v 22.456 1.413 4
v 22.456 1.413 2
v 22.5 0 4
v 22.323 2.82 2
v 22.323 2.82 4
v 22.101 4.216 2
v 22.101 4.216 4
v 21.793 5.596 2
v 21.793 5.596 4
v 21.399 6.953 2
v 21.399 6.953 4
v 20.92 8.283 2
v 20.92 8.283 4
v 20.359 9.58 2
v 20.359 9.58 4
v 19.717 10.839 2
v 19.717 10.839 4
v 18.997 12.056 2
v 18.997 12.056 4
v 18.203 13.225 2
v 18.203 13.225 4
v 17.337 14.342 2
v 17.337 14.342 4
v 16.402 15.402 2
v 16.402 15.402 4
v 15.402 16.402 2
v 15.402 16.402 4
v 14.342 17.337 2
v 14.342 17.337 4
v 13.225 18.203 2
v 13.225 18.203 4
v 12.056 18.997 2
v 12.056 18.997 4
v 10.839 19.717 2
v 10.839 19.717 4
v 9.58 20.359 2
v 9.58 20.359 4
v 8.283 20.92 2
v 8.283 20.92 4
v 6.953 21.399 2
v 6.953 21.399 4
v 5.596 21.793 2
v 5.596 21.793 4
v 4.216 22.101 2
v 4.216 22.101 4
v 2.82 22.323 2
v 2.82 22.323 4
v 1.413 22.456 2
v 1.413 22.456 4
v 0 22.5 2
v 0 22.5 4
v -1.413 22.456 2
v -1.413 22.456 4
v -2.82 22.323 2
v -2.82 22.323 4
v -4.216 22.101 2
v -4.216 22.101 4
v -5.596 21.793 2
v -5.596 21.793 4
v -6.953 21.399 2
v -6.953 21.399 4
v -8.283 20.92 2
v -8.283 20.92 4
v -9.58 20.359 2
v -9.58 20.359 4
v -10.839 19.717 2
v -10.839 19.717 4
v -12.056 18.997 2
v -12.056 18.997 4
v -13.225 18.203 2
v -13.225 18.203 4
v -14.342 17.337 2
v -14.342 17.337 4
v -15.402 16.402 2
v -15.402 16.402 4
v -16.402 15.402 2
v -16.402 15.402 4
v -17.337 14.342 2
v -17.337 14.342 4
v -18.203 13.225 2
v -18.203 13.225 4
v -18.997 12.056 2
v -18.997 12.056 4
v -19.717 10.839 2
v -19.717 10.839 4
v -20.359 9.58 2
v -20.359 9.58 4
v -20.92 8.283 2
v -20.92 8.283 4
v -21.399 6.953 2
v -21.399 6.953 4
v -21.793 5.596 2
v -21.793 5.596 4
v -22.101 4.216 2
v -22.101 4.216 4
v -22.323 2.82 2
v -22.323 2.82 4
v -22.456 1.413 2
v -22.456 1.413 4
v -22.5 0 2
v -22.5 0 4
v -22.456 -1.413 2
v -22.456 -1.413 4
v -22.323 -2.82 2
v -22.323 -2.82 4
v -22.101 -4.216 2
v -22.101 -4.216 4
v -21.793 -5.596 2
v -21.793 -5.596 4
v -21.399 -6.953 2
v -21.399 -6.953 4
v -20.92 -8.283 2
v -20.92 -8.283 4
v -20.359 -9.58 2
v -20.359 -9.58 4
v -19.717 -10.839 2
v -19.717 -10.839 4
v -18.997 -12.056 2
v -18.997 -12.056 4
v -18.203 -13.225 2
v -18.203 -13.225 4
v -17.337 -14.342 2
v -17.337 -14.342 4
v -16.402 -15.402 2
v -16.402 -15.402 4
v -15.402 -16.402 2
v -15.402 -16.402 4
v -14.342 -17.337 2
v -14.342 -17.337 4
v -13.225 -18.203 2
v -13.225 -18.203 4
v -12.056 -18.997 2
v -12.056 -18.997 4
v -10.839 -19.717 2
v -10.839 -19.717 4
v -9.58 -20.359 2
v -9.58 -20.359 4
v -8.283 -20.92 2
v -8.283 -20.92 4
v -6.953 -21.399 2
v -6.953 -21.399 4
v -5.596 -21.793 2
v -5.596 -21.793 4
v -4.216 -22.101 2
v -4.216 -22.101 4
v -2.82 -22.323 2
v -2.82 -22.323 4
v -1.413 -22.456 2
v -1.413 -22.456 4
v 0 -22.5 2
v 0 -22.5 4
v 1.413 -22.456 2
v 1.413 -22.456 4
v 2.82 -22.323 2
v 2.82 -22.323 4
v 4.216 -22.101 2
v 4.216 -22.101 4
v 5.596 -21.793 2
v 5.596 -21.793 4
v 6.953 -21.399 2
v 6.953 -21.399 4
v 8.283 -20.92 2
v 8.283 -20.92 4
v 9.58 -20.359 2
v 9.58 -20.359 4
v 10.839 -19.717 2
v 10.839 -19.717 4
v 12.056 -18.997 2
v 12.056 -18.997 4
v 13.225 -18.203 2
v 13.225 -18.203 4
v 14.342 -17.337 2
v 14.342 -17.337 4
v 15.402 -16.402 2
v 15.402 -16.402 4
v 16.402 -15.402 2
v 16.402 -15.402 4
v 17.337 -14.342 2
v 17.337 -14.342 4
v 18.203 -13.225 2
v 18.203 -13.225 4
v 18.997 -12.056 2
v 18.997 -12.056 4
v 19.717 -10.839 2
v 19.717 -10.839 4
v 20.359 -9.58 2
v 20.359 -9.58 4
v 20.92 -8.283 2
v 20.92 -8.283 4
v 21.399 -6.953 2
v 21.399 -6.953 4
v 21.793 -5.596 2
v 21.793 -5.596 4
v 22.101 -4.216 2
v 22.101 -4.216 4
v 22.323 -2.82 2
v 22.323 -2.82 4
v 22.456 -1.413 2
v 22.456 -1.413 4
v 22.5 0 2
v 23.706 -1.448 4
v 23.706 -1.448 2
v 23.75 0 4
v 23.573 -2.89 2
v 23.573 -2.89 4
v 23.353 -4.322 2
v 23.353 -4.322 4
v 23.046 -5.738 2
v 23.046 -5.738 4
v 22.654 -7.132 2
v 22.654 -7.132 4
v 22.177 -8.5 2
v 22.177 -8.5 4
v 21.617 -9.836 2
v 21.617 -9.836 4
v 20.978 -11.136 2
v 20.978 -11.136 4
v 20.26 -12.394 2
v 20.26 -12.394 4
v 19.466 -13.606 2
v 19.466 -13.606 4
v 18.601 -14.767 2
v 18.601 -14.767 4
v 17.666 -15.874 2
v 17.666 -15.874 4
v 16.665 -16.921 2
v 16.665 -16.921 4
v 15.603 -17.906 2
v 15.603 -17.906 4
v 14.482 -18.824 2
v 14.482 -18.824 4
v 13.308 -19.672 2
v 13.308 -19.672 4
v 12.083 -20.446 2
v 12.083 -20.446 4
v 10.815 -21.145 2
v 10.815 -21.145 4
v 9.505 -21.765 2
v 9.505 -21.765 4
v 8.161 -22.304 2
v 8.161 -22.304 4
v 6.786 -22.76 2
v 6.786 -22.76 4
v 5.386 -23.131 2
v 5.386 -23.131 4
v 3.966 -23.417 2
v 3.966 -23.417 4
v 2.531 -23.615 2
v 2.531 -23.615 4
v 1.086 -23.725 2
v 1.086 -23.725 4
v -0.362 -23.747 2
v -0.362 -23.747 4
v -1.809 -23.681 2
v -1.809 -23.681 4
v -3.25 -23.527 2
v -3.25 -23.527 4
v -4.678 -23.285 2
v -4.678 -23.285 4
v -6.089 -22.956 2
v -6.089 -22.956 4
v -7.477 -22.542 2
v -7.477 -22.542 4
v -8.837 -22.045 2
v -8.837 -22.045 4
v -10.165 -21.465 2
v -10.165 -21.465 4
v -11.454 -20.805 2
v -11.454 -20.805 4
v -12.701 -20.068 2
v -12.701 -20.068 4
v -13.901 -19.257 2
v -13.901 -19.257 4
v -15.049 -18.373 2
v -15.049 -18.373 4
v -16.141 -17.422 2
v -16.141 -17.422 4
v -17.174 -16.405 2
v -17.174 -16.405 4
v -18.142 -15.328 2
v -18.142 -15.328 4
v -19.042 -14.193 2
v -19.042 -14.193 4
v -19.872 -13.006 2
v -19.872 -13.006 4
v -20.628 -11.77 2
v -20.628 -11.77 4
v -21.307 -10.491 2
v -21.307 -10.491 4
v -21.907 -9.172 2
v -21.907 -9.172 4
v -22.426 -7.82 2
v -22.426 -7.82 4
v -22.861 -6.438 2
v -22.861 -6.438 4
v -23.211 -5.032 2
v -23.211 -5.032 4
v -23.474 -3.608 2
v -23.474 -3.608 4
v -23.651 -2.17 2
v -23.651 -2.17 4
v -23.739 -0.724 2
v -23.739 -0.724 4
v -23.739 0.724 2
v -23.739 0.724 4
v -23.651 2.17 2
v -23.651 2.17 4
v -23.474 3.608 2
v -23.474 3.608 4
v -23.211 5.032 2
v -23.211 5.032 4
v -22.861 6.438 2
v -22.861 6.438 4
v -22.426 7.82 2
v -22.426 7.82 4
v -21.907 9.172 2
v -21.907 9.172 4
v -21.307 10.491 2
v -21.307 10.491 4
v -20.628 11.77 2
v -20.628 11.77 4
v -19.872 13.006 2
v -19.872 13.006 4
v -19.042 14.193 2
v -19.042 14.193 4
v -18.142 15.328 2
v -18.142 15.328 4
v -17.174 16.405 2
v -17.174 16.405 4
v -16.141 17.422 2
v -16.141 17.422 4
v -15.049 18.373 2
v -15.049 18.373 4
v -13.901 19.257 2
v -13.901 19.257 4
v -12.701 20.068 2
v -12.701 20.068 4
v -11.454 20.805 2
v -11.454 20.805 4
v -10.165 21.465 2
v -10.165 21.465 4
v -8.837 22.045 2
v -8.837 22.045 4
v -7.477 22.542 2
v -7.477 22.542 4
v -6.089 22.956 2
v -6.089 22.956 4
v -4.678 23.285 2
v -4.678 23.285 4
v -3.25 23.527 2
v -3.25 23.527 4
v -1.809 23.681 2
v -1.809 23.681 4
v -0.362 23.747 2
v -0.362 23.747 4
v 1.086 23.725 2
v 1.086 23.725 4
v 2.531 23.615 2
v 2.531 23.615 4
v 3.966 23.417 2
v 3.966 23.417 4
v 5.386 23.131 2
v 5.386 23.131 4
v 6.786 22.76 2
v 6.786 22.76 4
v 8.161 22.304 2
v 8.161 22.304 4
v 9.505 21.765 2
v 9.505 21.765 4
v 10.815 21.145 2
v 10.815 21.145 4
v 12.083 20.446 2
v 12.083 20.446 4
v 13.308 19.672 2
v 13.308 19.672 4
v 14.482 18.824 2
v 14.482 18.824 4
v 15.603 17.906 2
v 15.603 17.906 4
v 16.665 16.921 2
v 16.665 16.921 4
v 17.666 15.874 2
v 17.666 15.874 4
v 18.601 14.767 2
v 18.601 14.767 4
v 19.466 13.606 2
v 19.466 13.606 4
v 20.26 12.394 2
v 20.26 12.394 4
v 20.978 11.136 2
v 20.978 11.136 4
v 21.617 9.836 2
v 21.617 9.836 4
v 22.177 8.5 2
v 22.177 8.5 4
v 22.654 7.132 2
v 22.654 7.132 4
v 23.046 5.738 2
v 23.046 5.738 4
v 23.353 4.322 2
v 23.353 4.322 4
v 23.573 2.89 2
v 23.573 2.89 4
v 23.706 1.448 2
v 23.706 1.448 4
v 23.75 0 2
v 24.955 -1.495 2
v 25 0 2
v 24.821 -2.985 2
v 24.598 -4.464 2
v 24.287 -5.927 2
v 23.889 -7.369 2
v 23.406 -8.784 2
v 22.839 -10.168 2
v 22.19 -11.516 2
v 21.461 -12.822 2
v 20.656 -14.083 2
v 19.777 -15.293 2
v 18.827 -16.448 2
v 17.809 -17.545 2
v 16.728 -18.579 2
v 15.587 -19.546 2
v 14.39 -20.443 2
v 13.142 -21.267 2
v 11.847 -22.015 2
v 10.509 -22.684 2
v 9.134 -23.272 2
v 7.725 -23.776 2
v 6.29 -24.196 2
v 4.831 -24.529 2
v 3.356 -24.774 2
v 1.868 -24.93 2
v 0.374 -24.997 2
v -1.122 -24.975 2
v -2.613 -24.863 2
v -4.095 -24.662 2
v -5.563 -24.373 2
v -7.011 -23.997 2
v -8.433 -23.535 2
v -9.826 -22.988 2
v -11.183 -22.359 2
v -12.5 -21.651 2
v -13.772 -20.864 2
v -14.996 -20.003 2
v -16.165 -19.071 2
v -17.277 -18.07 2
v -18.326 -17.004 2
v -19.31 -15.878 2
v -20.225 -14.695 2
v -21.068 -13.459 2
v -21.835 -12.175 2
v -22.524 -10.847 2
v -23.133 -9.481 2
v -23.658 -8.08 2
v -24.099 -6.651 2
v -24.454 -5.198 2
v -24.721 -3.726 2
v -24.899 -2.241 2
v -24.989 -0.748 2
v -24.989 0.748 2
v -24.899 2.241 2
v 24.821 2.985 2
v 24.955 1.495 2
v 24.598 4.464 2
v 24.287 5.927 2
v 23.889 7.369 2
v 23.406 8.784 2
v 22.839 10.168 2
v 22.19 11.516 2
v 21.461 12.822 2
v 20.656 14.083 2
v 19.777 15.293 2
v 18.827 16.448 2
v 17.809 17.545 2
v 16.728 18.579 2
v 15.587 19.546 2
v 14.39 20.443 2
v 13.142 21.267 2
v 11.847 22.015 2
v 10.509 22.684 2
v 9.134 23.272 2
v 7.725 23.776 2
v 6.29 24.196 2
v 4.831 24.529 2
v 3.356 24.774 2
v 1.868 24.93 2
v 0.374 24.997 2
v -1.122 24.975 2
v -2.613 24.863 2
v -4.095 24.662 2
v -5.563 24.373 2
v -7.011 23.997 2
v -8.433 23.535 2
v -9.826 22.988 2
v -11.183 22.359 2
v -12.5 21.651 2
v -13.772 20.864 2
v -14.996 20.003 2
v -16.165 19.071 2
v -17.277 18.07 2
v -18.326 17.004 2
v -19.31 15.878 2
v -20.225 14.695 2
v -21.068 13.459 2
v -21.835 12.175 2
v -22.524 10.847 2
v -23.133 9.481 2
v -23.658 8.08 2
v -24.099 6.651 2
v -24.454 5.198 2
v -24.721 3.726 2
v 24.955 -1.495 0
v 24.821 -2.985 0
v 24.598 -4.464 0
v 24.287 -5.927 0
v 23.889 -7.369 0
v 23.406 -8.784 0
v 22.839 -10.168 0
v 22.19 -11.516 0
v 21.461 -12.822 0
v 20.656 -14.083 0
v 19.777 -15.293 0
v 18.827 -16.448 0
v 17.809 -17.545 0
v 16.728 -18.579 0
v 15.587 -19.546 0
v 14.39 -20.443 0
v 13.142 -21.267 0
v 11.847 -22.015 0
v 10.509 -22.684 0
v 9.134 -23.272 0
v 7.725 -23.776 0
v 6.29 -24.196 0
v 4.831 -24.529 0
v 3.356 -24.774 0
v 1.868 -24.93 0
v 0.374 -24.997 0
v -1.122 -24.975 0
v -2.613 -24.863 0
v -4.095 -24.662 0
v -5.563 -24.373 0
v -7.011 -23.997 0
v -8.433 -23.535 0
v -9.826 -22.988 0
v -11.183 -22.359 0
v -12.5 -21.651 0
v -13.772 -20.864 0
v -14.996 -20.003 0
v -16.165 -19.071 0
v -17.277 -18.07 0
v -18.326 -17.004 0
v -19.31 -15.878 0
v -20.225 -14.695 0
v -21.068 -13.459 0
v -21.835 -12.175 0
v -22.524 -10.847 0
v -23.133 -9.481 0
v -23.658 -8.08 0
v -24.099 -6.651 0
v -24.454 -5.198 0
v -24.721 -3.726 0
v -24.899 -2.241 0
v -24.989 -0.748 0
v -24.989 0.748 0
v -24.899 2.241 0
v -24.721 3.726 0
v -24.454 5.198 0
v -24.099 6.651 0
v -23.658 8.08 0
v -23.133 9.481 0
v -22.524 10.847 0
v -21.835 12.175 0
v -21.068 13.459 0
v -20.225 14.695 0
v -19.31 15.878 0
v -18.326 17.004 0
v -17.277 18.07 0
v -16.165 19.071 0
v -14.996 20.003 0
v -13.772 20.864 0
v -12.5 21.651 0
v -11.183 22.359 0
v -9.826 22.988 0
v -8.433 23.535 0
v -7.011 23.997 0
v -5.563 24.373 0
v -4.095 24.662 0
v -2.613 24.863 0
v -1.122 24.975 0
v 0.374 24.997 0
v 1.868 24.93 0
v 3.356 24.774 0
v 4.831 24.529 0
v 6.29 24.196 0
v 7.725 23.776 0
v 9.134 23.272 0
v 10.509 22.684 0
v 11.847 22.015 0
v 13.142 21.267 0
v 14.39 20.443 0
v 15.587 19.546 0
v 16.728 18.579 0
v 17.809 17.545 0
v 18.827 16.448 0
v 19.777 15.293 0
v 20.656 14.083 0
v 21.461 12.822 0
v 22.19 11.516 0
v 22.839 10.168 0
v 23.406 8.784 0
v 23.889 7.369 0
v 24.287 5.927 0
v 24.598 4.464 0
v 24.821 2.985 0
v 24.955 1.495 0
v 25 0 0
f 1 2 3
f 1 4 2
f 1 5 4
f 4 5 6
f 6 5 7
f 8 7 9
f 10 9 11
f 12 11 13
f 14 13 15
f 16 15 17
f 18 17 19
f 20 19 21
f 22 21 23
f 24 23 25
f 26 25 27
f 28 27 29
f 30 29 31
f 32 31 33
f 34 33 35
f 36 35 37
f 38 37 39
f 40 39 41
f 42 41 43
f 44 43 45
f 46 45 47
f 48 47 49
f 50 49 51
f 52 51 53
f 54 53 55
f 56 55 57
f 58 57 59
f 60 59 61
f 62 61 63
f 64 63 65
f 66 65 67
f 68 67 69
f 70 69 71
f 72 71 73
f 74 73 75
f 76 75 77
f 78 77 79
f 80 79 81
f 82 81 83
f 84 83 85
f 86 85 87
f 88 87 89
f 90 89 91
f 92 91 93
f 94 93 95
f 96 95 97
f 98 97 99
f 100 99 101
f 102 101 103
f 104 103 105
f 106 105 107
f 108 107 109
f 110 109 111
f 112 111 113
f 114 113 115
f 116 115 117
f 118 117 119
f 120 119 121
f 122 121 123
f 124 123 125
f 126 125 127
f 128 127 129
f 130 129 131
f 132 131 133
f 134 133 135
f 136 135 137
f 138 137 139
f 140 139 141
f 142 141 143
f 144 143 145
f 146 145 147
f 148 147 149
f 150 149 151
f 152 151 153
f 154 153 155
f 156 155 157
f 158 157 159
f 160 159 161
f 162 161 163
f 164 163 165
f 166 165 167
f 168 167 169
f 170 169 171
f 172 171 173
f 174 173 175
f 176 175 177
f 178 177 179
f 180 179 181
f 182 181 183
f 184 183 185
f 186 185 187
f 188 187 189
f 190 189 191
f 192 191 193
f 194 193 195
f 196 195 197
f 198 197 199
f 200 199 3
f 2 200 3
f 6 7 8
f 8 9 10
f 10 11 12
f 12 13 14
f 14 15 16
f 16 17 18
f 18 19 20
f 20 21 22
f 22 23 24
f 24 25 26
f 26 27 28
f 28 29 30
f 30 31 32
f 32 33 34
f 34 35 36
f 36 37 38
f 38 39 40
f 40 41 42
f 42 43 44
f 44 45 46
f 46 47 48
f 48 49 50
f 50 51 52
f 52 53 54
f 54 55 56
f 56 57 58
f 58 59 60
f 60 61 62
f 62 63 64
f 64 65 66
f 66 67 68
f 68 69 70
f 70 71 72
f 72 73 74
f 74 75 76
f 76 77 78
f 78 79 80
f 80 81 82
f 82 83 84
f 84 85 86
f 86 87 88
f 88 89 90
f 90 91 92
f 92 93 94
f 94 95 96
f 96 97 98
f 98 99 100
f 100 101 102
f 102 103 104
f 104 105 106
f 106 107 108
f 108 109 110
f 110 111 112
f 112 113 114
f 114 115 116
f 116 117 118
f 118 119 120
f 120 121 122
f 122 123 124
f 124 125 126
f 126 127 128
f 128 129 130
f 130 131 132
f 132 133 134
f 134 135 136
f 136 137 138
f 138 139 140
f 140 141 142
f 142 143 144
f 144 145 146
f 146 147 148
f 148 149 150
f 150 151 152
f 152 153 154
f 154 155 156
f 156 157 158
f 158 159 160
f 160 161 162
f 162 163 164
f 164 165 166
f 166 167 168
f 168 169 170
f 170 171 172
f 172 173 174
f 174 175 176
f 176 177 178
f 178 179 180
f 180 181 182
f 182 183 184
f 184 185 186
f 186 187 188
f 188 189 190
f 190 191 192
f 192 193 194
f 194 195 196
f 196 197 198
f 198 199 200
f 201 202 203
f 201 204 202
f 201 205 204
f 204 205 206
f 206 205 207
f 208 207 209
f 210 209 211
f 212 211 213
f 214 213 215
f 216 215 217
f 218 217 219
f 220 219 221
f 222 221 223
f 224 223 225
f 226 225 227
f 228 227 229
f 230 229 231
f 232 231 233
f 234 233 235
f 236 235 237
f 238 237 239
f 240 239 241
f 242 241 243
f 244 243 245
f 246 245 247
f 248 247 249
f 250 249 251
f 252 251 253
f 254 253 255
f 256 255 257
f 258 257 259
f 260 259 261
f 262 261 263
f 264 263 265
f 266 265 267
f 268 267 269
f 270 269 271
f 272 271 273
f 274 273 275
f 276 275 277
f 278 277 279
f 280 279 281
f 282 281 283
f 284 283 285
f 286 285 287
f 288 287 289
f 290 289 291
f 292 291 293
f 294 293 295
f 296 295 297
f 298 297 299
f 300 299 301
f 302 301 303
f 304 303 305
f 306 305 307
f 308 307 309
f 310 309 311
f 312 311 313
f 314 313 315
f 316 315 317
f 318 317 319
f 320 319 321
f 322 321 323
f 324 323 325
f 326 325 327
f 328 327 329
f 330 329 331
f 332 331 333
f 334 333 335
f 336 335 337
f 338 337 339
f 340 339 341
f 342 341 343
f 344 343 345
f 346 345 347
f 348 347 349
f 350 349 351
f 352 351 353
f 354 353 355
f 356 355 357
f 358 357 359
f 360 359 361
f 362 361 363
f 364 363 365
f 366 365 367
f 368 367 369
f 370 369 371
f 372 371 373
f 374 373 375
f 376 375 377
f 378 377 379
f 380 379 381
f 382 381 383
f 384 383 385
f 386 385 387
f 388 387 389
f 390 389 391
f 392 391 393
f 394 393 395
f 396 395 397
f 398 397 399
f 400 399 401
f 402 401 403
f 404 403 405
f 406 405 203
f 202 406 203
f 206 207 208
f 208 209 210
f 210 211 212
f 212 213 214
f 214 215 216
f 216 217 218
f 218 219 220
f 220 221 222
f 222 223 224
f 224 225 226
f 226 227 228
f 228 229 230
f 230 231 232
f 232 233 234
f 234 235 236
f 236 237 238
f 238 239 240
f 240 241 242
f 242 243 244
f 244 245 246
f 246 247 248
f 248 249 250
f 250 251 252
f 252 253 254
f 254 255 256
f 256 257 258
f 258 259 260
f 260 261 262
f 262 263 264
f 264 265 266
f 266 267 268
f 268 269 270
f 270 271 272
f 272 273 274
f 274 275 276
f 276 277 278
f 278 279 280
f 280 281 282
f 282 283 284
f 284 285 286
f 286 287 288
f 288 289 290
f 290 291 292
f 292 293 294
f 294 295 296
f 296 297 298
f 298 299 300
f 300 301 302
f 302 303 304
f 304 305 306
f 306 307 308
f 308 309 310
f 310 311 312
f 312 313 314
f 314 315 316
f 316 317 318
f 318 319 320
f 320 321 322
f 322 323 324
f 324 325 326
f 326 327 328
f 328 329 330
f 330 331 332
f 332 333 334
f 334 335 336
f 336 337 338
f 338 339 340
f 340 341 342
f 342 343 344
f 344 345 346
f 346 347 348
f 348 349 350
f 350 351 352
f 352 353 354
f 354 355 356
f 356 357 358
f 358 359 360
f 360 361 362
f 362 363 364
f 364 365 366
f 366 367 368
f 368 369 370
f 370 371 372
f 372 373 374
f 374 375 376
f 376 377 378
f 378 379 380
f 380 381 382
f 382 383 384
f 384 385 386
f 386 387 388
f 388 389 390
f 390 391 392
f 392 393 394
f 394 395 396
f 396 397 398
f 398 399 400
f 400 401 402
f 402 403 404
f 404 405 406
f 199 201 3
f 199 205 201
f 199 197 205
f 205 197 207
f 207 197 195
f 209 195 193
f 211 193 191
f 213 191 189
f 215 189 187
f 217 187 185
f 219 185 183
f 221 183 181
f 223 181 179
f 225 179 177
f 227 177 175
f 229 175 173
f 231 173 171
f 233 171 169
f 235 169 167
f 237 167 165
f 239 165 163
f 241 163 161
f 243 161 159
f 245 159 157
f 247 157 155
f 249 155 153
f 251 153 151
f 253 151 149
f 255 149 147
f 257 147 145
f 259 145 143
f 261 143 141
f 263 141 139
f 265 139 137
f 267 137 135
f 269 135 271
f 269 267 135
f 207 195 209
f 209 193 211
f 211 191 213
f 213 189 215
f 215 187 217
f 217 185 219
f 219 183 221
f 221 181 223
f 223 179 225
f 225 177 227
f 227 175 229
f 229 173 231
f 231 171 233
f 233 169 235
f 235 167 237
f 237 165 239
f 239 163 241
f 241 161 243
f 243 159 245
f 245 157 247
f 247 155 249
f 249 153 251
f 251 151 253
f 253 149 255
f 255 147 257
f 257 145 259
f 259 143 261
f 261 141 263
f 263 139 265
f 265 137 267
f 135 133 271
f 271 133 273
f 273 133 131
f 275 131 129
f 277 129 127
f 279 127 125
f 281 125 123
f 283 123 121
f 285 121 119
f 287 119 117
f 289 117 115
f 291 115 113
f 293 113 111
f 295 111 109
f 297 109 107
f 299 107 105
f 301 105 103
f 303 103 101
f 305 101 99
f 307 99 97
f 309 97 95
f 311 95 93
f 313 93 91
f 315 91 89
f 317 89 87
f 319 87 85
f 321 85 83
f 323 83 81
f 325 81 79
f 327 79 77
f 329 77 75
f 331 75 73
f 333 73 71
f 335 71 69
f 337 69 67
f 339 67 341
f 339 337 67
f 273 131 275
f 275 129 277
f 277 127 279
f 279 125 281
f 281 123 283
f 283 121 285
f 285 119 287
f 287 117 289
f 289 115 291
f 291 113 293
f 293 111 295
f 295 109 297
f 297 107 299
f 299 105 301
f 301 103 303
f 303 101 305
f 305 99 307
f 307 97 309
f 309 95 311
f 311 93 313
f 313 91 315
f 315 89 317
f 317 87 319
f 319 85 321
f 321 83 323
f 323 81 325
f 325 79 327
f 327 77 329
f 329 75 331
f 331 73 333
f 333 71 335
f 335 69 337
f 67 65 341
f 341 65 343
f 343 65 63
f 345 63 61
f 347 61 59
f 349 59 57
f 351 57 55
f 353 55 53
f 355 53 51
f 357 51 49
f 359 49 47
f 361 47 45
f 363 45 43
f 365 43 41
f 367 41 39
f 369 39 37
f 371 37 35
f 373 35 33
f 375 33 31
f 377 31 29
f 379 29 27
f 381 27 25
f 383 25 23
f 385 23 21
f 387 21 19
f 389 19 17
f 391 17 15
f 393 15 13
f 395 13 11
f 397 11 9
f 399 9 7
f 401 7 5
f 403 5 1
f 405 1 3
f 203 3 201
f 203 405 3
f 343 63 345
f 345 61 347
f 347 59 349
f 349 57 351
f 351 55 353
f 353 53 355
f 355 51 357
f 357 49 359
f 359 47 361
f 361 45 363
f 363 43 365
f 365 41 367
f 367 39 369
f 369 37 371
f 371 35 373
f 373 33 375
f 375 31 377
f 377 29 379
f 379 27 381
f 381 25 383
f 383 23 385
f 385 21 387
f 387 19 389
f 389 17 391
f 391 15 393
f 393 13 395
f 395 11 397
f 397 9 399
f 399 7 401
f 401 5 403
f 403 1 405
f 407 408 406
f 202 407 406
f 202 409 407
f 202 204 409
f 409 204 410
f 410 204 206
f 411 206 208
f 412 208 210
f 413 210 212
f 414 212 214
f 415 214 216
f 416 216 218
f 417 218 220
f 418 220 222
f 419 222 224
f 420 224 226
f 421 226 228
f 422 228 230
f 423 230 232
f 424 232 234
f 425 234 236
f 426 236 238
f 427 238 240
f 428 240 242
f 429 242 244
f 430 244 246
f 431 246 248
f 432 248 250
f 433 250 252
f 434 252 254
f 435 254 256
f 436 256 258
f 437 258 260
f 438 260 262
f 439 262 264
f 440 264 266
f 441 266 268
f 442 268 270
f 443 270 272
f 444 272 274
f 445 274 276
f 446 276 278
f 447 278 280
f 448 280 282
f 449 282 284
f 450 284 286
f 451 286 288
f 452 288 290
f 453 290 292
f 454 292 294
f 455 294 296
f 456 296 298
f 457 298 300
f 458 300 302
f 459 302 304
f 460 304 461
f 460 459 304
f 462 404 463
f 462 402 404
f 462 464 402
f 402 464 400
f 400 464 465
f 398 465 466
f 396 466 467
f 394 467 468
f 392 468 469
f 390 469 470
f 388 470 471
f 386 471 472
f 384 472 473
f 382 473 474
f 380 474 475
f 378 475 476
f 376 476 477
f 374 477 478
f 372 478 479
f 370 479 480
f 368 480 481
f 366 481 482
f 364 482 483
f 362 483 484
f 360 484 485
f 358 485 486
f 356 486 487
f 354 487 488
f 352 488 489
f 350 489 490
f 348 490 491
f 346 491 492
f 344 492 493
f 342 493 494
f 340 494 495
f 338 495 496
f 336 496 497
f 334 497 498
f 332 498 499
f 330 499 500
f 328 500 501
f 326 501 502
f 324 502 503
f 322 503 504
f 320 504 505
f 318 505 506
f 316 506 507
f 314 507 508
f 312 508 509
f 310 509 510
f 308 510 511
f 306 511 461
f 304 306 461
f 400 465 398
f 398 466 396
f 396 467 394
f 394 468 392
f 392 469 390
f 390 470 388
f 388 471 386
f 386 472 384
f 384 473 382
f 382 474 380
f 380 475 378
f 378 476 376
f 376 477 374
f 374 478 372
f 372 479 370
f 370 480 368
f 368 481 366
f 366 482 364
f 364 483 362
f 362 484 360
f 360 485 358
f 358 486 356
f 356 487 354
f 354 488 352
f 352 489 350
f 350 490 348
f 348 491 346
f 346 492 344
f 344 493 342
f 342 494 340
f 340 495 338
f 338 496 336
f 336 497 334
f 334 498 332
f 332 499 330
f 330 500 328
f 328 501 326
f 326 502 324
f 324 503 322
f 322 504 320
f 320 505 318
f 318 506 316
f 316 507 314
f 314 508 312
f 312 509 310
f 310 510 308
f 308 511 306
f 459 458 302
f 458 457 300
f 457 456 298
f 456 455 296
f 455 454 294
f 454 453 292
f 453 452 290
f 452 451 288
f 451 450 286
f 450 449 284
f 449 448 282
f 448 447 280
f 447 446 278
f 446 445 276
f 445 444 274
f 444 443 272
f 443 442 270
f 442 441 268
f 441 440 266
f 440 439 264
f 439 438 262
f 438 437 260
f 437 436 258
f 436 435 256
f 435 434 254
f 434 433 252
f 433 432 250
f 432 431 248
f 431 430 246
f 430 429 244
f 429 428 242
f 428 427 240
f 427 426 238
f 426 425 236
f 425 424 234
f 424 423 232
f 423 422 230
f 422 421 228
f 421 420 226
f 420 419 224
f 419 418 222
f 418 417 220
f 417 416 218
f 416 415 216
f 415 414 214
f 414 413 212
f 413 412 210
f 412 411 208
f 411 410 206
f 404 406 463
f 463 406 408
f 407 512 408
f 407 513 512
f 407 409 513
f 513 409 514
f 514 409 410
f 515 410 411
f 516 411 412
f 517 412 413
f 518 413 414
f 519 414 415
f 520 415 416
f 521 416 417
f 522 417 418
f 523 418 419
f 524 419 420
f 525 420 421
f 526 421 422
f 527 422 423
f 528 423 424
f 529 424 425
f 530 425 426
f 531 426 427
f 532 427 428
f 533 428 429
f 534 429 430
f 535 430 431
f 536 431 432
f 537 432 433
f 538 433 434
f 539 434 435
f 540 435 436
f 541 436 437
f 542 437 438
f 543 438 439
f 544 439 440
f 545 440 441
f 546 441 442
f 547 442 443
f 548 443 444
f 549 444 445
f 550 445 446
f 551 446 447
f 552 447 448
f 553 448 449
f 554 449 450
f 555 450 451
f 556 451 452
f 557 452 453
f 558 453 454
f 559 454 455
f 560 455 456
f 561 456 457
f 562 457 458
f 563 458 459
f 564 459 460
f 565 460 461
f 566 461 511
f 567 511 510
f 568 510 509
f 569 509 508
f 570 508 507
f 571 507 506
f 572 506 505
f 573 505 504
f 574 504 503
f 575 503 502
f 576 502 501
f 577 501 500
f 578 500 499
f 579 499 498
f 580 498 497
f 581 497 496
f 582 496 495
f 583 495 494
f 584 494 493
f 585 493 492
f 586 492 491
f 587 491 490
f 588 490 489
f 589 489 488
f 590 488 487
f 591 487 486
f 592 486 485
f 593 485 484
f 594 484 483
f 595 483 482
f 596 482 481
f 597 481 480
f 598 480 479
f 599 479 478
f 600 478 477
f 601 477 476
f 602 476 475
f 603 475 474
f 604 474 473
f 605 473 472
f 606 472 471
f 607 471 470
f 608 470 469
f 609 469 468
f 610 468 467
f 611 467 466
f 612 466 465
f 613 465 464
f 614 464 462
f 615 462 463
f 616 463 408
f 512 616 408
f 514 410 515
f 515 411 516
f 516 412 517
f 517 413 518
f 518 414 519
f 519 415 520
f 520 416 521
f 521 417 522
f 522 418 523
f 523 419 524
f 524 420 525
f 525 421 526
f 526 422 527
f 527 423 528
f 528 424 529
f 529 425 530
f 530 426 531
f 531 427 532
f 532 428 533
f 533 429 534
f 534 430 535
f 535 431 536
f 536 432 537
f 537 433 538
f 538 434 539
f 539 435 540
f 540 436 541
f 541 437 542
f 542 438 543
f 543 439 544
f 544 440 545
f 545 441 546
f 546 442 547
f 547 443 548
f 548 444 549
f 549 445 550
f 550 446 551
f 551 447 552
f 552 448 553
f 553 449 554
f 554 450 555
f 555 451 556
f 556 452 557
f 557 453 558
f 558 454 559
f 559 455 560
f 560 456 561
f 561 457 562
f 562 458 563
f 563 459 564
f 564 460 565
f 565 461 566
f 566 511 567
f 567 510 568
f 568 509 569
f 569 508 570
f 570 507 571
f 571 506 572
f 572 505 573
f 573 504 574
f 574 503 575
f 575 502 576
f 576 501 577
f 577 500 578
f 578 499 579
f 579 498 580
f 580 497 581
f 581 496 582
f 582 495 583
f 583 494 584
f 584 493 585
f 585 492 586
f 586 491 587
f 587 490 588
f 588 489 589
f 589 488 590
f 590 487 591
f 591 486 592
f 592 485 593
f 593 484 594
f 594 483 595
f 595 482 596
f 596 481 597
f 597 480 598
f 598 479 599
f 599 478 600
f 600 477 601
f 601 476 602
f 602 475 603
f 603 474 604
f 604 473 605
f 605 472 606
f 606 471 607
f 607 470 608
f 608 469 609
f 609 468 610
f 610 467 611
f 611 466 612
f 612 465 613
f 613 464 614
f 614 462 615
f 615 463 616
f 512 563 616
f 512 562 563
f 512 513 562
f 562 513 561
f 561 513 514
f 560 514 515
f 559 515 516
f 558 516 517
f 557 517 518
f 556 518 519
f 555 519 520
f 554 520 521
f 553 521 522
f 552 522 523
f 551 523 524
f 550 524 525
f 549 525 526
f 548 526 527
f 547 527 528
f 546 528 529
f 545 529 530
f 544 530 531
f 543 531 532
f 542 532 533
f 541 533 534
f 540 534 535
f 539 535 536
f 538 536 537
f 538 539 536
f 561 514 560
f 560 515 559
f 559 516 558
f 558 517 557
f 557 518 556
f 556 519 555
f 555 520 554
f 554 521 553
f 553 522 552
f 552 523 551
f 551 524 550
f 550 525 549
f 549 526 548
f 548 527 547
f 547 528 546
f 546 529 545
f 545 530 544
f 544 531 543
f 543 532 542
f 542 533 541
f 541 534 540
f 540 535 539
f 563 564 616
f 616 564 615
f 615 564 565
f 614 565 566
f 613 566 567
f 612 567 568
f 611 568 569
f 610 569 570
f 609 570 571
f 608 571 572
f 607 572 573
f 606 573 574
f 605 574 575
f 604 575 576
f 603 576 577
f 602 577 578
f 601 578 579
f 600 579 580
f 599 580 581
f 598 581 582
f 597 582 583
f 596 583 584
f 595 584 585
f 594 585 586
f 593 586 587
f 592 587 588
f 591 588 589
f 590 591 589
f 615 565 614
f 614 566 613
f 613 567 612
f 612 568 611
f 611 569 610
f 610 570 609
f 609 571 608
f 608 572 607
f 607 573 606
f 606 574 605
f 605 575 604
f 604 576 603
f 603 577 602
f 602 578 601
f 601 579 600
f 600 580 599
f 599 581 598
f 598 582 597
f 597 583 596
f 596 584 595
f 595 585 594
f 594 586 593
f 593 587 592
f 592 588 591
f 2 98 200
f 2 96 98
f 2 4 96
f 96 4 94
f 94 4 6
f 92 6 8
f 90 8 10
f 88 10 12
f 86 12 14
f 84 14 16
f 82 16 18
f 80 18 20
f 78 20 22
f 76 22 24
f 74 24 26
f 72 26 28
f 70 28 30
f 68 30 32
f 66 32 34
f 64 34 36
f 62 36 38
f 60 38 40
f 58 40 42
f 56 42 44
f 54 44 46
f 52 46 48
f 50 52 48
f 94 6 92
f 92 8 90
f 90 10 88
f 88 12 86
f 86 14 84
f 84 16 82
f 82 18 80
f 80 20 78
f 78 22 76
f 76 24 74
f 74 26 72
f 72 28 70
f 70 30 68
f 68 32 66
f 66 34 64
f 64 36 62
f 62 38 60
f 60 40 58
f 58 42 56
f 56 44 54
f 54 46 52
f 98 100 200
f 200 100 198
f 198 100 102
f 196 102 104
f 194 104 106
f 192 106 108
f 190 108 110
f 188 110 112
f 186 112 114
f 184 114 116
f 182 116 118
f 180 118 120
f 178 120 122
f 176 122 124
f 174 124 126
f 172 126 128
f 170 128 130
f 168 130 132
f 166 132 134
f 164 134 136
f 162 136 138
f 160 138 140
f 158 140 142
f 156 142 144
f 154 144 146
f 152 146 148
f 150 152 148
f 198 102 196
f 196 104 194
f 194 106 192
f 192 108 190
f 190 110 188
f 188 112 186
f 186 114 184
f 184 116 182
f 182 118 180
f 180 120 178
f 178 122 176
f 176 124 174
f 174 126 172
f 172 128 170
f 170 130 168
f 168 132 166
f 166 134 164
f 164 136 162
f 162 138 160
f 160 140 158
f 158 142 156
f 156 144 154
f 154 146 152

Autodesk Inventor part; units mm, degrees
ref_plane "YZ Plane" through (0, 0, 0) normal (1, 0, 0) x (0, 1, 0)
ref_plane "XZ Plane" through (0, 0, 0) normal (0, 1, 0) x (-1, 0, 0)
ref_plane "XY Plane" through (0, 0, 0) normal (0, 0, 1) x (1, 0, 0)
sketch "Sketch1" plane through (0, 0, 0) normal (0, 0, 1) x (1, 0, 0)
  circle A0 centre (0, 0) radius 25
  dimension "d0" = 50
extrude "Extrusion1" add sketch "Sketch1" along normal blind 2
sketch "Sketch2" plane through (0, 0, 2) normal (0, 0, 1) x (1, 0, 0)
  circle A0 centre (0, 0) radius 23.75
  circle A1 centre (0, 0) radius 22.5
  dimension "d3" = 47.5
  dimension "d4" = 45
extrude "Extrusion2" add sketch "Sketch2" along normal blind 2
properties part number "tapaCargador"
